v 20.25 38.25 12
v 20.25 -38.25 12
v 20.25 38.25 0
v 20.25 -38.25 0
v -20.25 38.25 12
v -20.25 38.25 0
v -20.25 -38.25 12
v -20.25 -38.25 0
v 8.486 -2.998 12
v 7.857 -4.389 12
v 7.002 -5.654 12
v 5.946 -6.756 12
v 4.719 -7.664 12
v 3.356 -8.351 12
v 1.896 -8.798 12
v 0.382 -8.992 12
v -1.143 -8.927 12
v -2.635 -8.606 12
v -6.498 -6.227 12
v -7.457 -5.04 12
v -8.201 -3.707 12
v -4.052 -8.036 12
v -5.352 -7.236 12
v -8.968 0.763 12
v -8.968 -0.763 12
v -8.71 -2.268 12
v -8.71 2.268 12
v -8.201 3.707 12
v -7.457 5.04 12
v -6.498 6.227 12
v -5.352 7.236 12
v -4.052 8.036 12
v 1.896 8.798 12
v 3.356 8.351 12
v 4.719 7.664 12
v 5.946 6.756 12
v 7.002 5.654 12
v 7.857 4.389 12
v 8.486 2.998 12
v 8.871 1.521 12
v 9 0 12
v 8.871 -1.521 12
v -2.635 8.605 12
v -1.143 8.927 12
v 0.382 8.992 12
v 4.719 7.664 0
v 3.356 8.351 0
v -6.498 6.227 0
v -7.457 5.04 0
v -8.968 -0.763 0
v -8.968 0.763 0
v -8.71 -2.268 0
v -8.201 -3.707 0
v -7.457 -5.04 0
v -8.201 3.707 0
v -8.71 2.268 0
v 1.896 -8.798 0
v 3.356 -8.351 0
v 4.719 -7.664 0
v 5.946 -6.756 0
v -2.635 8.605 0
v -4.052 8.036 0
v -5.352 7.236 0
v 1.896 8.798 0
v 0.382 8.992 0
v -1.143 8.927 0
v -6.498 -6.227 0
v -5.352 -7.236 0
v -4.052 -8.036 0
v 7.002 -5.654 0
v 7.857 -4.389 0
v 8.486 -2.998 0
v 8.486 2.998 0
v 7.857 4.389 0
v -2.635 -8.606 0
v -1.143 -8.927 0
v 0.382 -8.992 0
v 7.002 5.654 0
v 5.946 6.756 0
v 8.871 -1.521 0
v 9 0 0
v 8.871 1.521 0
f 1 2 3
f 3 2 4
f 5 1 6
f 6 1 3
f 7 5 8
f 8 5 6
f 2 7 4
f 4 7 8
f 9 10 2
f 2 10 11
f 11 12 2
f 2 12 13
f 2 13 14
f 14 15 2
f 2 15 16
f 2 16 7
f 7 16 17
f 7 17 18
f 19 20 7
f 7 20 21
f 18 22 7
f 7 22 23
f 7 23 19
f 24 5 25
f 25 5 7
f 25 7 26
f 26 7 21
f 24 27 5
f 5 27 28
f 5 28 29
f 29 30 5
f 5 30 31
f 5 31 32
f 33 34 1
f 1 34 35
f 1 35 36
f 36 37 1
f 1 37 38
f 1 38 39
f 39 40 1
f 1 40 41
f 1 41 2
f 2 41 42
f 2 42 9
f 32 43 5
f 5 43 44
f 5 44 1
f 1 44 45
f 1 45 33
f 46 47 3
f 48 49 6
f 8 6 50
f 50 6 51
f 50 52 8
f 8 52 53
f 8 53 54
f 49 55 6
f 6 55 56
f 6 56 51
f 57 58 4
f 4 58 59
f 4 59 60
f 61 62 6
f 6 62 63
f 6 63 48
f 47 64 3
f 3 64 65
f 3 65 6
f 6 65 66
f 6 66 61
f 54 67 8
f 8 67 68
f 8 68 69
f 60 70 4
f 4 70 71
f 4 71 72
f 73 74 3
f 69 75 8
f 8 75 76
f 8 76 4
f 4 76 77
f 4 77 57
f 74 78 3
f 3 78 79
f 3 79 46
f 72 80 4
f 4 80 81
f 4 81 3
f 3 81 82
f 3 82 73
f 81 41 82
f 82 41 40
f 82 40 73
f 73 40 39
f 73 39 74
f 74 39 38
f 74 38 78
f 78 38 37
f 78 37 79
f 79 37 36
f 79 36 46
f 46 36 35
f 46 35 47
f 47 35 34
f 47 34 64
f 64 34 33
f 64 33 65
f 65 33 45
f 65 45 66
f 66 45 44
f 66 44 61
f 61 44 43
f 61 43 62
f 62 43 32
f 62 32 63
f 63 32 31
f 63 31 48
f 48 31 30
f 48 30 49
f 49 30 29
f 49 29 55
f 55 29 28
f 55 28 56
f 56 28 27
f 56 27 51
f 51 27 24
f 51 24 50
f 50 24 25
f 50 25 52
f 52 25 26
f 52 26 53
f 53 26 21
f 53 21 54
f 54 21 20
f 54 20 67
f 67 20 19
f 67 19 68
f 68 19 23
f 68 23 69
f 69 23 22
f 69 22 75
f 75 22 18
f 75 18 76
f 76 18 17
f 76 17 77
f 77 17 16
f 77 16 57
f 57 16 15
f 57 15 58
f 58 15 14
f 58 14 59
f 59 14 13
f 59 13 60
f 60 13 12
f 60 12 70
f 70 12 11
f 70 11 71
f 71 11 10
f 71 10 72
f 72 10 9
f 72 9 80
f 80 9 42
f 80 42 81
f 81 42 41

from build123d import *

# Parameters (mm, degrees)
SKETCH1_W           = 40.5
SKETCH1_H           = 76.5
BOSS_EXTRUDE1_DEPTH = 12
CUT_EXTRUDE1_REACH  = 14
SKETCH2_R           = 9


with BuildPart() as part:
    # Sketch1 → Boss-Extrude1 (new body)
    with BuildSketch(Plane.XY):
        Rectangle(SKETCH1_W, SKETCH1_H)
    extrude(amount=BOSS_EXTRUDE1_DEPTH)

    # Sketch2 → Cut-Extrude1 (cut, up to next)
    with BuildSketch(Plane.XY.offset(12), mode=Mode.PRIVATE) as cut_extrude1_sk1:
        Circle(SKETCH2_R)
    cut_extrude1_tool1 = extrude(cut_extrude1_sk1.sketch, amount=-CUT_EXTRUDE1_REACH, mode=Mode.PRIVATE) & part.part
    add(cut_extrude1_tool1.solids().sort_by_distance((0, 0, 12))[0], mode=Mode.SUBTRACT)


solid = part.part
